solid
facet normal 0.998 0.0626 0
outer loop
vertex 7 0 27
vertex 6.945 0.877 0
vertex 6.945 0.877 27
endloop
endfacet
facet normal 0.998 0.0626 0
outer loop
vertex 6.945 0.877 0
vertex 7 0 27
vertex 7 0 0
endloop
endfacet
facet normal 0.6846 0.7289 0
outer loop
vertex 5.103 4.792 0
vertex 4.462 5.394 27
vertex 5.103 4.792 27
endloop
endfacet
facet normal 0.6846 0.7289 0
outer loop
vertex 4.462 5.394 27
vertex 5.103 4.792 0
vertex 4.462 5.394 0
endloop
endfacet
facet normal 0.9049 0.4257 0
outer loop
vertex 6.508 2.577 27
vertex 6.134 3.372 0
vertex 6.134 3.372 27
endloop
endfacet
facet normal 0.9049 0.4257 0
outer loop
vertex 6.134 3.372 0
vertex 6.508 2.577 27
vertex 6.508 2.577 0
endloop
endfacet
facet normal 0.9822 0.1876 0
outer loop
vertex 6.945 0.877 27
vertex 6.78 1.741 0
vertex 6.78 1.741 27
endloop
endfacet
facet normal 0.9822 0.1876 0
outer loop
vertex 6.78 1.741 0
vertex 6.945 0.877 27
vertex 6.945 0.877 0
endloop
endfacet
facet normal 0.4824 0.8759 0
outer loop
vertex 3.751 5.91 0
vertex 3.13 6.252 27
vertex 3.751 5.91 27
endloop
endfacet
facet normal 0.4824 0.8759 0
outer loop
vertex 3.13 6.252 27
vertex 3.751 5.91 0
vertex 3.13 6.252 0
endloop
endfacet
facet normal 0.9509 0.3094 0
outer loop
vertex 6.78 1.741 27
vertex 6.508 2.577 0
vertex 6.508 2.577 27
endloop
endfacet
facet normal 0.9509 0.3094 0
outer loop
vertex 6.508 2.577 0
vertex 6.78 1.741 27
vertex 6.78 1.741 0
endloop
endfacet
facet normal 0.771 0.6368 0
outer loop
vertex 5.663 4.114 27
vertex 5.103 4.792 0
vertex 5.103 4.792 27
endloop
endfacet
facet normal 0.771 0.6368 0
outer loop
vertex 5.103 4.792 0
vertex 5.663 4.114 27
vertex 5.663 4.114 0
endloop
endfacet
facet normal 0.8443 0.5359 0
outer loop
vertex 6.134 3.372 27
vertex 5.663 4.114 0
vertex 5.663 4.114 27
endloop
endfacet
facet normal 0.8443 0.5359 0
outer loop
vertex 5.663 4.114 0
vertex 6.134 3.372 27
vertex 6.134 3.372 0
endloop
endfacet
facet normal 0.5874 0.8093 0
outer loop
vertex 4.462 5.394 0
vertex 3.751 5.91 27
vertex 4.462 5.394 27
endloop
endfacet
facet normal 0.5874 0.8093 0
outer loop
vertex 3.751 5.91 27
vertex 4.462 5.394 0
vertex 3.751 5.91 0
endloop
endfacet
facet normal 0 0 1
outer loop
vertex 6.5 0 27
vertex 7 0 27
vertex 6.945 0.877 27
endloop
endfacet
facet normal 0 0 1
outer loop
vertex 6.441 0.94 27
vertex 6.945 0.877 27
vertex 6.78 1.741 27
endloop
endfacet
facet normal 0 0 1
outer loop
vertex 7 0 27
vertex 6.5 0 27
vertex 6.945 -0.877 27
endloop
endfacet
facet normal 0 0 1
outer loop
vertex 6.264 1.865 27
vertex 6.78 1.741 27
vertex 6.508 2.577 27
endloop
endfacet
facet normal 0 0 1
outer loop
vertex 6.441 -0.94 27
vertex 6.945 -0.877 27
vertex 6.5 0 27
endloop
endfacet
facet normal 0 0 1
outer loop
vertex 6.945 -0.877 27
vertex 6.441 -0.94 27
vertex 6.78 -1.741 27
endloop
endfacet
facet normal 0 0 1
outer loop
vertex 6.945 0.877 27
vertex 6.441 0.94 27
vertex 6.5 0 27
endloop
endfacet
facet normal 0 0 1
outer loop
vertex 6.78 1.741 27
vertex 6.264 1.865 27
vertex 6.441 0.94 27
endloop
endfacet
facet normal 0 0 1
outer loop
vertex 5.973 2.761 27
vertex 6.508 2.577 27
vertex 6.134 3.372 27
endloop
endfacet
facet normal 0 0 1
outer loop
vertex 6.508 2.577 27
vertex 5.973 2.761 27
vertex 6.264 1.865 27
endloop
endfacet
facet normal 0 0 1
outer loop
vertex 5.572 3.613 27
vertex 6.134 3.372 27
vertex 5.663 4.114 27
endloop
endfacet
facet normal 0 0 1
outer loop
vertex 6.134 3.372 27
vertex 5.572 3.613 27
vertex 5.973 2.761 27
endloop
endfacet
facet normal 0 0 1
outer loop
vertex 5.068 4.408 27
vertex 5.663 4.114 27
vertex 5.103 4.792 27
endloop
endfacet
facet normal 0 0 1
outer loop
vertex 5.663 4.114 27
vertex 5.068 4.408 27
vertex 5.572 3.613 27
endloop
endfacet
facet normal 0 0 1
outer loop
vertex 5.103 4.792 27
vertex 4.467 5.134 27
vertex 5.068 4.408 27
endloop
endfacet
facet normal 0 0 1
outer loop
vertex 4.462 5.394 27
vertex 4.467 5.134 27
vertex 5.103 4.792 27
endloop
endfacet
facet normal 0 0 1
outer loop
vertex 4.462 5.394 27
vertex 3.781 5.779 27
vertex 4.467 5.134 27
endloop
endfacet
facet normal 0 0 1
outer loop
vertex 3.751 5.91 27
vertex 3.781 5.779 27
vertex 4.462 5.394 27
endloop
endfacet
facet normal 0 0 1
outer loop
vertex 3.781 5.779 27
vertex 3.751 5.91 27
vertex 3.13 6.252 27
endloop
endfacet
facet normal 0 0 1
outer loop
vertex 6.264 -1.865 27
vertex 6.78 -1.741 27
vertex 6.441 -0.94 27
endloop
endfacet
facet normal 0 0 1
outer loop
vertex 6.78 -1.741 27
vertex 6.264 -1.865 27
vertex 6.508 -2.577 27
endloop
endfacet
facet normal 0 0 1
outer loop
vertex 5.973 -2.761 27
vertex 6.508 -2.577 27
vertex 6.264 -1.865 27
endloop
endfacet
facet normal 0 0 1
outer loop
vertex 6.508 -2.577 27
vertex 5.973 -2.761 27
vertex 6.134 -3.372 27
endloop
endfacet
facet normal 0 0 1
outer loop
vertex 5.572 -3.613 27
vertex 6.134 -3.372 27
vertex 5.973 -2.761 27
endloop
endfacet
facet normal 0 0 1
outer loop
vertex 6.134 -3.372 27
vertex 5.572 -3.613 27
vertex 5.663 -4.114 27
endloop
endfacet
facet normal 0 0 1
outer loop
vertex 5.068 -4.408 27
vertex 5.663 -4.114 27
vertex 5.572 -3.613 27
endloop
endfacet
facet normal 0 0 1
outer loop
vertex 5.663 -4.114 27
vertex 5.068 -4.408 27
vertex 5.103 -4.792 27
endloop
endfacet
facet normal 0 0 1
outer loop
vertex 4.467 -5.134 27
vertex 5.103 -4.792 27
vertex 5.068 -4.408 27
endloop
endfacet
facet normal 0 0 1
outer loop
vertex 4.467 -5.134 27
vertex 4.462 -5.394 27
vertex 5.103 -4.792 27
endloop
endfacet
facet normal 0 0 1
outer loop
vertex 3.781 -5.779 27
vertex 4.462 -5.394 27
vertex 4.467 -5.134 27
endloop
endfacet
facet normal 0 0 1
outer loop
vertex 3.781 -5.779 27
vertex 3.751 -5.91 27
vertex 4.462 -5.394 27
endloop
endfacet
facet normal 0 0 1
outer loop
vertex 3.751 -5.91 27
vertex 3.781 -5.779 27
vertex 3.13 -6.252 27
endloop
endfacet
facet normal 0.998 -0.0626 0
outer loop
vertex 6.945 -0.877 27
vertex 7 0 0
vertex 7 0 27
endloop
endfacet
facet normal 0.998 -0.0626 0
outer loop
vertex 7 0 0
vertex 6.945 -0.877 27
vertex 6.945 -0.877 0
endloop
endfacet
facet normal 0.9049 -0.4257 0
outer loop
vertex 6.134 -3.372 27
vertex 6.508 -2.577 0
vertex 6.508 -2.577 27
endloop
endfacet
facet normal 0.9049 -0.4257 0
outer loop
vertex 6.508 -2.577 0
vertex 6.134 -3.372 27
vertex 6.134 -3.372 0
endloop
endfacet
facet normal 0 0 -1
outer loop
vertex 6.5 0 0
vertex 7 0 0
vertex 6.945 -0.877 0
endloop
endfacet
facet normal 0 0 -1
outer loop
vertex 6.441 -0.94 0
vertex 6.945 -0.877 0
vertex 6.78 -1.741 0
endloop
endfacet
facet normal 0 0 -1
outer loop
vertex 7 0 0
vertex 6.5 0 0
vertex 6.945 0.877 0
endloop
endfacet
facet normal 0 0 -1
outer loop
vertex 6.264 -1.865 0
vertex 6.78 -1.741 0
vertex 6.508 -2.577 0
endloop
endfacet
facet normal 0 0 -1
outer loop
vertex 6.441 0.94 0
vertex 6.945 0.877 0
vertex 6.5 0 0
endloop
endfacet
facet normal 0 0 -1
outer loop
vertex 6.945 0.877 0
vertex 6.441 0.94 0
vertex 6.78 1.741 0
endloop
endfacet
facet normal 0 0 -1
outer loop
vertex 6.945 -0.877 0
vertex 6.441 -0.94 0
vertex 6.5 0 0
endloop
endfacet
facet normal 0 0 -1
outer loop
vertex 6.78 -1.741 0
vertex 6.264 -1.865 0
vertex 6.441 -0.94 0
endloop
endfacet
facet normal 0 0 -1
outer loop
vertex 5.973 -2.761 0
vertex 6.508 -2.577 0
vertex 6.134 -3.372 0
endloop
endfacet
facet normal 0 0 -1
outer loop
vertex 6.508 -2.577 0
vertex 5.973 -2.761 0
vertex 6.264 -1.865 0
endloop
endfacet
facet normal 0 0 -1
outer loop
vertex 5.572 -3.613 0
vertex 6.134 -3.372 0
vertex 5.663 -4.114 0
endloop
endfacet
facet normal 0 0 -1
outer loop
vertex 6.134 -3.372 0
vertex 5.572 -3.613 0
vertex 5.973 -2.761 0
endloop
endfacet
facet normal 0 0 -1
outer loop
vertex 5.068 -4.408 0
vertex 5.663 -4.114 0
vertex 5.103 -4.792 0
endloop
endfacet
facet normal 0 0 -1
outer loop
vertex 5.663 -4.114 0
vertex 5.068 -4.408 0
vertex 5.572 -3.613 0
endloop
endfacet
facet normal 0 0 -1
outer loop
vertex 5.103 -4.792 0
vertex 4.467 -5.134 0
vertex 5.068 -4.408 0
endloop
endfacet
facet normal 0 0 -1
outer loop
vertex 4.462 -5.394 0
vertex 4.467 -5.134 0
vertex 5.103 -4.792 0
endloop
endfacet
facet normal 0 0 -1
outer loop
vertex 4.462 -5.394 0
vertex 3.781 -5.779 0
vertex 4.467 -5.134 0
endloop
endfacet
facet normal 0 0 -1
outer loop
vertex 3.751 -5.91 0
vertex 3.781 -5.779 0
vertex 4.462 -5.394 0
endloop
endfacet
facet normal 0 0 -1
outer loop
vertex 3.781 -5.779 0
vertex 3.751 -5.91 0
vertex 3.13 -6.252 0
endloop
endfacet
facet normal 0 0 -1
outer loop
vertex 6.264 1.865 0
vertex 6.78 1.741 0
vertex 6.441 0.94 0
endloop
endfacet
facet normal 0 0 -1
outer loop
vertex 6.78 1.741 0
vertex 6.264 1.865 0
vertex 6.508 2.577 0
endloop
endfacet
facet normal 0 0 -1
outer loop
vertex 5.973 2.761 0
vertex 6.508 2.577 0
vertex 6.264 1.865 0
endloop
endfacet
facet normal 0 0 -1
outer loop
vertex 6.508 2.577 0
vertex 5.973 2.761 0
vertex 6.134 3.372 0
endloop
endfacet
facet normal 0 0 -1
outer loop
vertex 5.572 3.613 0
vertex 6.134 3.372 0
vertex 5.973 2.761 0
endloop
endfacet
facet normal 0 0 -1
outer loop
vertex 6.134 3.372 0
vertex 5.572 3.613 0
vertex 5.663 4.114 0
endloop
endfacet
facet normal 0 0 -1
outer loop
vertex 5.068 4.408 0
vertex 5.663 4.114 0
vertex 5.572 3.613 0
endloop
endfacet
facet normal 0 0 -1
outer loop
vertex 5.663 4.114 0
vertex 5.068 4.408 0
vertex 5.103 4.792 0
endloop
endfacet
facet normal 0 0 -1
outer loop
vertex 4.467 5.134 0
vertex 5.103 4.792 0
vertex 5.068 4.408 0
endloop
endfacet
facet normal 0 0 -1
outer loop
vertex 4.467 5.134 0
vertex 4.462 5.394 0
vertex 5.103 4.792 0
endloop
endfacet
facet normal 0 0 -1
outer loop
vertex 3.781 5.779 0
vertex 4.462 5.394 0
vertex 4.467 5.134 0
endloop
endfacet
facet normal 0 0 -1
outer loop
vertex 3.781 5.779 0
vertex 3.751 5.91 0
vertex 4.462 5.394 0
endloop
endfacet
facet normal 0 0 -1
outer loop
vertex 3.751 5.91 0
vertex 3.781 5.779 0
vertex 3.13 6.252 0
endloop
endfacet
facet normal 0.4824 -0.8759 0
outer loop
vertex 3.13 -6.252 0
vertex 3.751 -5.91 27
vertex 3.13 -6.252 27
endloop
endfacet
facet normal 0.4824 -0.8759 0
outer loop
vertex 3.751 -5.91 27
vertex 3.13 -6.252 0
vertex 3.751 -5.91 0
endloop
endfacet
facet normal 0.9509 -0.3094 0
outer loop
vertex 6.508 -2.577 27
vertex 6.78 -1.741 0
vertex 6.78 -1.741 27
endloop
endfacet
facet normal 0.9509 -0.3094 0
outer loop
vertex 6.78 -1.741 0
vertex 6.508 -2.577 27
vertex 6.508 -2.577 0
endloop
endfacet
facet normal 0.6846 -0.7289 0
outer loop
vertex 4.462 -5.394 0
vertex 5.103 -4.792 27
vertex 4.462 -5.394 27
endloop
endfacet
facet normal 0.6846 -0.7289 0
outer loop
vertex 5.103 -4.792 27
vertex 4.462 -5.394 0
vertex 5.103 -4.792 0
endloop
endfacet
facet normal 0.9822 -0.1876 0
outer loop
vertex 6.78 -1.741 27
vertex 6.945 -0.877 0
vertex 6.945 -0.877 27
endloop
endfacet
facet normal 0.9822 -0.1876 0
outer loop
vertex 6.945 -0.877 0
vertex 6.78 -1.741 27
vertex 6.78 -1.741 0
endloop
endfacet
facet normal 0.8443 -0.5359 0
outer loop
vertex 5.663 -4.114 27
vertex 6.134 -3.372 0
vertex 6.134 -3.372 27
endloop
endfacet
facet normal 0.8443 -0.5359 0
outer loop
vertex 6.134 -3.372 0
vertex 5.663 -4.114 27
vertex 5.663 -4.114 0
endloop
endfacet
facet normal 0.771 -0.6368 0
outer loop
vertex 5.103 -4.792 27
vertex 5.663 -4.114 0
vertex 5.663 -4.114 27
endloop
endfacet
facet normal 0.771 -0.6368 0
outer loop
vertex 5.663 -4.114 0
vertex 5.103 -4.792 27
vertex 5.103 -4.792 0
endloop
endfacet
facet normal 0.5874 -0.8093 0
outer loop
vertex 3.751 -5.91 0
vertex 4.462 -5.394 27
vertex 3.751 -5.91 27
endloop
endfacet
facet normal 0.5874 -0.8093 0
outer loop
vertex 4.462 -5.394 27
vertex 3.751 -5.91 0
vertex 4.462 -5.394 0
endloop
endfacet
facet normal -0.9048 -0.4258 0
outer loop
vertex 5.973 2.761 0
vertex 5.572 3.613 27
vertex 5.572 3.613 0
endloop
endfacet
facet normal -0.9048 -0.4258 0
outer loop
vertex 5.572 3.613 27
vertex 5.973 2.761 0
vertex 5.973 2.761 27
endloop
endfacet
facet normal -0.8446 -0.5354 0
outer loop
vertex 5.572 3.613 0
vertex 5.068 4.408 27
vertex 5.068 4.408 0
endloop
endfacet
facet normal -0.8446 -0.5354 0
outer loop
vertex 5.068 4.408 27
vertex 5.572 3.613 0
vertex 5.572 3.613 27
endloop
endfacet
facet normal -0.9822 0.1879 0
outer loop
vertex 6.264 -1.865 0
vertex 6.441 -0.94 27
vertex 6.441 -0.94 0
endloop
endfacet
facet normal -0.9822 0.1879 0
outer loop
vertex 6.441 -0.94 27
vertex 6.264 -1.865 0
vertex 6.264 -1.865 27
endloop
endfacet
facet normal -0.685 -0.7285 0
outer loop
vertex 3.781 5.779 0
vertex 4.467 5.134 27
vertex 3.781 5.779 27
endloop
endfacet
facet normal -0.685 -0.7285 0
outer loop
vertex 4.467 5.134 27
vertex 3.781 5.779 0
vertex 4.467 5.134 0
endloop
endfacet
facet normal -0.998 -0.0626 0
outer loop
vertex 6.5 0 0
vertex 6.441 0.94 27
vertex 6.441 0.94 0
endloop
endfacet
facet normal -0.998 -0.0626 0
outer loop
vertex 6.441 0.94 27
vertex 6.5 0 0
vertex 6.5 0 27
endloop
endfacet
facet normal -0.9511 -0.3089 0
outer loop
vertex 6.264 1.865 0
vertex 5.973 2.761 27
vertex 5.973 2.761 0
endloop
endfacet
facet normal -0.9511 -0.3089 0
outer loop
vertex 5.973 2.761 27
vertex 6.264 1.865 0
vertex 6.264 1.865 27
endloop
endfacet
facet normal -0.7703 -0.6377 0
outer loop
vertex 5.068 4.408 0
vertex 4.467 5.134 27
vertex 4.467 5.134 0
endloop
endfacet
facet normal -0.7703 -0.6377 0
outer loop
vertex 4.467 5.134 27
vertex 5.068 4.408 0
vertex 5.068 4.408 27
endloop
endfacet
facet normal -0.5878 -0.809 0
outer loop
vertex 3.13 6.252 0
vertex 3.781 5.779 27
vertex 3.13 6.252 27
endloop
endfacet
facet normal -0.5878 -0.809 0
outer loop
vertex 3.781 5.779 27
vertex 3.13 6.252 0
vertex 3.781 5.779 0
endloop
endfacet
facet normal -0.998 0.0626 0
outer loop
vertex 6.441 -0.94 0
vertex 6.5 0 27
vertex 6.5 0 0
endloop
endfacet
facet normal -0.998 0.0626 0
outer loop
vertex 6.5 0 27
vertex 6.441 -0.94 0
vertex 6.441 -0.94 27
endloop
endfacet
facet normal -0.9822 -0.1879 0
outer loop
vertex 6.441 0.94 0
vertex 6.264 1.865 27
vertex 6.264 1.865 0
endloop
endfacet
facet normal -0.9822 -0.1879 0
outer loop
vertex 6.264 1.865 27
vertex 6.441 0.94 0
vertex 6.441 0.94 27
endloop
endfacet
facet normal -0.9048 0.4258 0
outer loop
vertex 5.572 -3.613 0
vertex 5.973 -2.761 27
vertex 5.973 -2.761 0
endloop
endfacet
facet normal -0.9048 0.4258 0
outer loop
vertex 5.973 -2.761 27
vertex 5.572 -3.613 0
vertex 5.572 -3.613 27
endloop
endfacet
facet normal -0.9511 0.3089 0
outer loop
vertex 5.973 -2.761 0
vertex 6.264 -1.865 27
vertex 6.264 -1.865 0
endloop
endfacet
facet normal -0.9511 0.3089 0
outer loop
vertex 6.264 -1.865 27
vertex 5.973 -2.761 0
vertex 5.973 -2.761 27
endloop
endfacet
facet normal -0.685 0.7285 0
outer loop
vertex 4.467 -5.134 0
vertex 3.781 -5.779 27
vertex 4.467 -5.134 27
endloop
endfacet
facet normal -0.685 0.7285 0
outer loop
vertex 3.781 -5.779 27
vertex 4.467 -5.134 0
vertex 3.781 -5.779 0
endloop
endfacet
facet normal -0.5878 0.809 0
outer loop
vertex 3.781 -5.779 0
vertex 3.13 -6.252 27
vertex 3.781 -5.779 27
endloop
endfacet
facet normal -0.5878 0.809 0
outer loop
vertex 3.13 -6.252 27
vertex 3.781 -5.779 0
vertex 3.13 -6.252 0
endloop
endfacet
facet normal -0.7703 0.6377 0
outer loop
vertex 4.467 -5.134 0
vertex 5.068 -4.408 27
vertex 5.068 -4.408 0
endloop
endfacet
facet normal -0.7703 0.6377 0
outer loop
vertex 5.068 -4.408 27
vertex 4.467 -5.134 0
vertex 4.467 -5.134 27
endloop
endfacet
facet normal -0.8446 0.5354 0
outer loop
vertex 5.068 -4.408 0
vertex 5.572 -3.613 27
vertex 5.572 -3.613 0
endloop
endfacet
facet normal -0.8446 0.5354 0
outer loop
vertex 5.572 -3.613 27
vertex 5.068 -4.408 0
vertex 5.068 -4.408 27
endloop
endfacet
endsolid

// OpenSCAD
$fn = 50;


difference() {
	union() {
		cylinder(h = 27, r = 7.0000000000);
		translate(v = [-4.0000000000, 0, 0]) {
			cylinder(h = 27, r = 7.0000000000);
		}
	}
	union() {
		cylinder(h = 27, r = 3.2500000000);
		cylinder(h = 27, r = 1.8000000000);
		cylinder(h = 27, r = 1.8000000000);
		cylinder(h = 27, r = 1.8000000000);
		translate(v = [-8.5000000000, 0, 0]) {
			hull() {
				translate(v = [-3.7500000000, 0.0000000000, 0]) {
					cylinder(h = 27, r = 7.5000000000);
				}
				translate(v = [3.7500000000, 0.0000000000, 0]) {
					cylinder(h = 27, r = 7.5000000000);
				}
				translate(v = [-3.7500000000, -0.0000000000, 0]) {
					cylinder(h = 27, r = 7.5000000000);
				}
				translate(v = [3.7500000000, -0.0000000000, 0]) {
					cylinder(h = 27, r = 7.5000000000);
				}
			}
		}
		translate(v = [-1.0000000000, 0, 0.0000000000]) {
			cylinder(h = 27, r = 7.5000000000);
		}
	}
}
